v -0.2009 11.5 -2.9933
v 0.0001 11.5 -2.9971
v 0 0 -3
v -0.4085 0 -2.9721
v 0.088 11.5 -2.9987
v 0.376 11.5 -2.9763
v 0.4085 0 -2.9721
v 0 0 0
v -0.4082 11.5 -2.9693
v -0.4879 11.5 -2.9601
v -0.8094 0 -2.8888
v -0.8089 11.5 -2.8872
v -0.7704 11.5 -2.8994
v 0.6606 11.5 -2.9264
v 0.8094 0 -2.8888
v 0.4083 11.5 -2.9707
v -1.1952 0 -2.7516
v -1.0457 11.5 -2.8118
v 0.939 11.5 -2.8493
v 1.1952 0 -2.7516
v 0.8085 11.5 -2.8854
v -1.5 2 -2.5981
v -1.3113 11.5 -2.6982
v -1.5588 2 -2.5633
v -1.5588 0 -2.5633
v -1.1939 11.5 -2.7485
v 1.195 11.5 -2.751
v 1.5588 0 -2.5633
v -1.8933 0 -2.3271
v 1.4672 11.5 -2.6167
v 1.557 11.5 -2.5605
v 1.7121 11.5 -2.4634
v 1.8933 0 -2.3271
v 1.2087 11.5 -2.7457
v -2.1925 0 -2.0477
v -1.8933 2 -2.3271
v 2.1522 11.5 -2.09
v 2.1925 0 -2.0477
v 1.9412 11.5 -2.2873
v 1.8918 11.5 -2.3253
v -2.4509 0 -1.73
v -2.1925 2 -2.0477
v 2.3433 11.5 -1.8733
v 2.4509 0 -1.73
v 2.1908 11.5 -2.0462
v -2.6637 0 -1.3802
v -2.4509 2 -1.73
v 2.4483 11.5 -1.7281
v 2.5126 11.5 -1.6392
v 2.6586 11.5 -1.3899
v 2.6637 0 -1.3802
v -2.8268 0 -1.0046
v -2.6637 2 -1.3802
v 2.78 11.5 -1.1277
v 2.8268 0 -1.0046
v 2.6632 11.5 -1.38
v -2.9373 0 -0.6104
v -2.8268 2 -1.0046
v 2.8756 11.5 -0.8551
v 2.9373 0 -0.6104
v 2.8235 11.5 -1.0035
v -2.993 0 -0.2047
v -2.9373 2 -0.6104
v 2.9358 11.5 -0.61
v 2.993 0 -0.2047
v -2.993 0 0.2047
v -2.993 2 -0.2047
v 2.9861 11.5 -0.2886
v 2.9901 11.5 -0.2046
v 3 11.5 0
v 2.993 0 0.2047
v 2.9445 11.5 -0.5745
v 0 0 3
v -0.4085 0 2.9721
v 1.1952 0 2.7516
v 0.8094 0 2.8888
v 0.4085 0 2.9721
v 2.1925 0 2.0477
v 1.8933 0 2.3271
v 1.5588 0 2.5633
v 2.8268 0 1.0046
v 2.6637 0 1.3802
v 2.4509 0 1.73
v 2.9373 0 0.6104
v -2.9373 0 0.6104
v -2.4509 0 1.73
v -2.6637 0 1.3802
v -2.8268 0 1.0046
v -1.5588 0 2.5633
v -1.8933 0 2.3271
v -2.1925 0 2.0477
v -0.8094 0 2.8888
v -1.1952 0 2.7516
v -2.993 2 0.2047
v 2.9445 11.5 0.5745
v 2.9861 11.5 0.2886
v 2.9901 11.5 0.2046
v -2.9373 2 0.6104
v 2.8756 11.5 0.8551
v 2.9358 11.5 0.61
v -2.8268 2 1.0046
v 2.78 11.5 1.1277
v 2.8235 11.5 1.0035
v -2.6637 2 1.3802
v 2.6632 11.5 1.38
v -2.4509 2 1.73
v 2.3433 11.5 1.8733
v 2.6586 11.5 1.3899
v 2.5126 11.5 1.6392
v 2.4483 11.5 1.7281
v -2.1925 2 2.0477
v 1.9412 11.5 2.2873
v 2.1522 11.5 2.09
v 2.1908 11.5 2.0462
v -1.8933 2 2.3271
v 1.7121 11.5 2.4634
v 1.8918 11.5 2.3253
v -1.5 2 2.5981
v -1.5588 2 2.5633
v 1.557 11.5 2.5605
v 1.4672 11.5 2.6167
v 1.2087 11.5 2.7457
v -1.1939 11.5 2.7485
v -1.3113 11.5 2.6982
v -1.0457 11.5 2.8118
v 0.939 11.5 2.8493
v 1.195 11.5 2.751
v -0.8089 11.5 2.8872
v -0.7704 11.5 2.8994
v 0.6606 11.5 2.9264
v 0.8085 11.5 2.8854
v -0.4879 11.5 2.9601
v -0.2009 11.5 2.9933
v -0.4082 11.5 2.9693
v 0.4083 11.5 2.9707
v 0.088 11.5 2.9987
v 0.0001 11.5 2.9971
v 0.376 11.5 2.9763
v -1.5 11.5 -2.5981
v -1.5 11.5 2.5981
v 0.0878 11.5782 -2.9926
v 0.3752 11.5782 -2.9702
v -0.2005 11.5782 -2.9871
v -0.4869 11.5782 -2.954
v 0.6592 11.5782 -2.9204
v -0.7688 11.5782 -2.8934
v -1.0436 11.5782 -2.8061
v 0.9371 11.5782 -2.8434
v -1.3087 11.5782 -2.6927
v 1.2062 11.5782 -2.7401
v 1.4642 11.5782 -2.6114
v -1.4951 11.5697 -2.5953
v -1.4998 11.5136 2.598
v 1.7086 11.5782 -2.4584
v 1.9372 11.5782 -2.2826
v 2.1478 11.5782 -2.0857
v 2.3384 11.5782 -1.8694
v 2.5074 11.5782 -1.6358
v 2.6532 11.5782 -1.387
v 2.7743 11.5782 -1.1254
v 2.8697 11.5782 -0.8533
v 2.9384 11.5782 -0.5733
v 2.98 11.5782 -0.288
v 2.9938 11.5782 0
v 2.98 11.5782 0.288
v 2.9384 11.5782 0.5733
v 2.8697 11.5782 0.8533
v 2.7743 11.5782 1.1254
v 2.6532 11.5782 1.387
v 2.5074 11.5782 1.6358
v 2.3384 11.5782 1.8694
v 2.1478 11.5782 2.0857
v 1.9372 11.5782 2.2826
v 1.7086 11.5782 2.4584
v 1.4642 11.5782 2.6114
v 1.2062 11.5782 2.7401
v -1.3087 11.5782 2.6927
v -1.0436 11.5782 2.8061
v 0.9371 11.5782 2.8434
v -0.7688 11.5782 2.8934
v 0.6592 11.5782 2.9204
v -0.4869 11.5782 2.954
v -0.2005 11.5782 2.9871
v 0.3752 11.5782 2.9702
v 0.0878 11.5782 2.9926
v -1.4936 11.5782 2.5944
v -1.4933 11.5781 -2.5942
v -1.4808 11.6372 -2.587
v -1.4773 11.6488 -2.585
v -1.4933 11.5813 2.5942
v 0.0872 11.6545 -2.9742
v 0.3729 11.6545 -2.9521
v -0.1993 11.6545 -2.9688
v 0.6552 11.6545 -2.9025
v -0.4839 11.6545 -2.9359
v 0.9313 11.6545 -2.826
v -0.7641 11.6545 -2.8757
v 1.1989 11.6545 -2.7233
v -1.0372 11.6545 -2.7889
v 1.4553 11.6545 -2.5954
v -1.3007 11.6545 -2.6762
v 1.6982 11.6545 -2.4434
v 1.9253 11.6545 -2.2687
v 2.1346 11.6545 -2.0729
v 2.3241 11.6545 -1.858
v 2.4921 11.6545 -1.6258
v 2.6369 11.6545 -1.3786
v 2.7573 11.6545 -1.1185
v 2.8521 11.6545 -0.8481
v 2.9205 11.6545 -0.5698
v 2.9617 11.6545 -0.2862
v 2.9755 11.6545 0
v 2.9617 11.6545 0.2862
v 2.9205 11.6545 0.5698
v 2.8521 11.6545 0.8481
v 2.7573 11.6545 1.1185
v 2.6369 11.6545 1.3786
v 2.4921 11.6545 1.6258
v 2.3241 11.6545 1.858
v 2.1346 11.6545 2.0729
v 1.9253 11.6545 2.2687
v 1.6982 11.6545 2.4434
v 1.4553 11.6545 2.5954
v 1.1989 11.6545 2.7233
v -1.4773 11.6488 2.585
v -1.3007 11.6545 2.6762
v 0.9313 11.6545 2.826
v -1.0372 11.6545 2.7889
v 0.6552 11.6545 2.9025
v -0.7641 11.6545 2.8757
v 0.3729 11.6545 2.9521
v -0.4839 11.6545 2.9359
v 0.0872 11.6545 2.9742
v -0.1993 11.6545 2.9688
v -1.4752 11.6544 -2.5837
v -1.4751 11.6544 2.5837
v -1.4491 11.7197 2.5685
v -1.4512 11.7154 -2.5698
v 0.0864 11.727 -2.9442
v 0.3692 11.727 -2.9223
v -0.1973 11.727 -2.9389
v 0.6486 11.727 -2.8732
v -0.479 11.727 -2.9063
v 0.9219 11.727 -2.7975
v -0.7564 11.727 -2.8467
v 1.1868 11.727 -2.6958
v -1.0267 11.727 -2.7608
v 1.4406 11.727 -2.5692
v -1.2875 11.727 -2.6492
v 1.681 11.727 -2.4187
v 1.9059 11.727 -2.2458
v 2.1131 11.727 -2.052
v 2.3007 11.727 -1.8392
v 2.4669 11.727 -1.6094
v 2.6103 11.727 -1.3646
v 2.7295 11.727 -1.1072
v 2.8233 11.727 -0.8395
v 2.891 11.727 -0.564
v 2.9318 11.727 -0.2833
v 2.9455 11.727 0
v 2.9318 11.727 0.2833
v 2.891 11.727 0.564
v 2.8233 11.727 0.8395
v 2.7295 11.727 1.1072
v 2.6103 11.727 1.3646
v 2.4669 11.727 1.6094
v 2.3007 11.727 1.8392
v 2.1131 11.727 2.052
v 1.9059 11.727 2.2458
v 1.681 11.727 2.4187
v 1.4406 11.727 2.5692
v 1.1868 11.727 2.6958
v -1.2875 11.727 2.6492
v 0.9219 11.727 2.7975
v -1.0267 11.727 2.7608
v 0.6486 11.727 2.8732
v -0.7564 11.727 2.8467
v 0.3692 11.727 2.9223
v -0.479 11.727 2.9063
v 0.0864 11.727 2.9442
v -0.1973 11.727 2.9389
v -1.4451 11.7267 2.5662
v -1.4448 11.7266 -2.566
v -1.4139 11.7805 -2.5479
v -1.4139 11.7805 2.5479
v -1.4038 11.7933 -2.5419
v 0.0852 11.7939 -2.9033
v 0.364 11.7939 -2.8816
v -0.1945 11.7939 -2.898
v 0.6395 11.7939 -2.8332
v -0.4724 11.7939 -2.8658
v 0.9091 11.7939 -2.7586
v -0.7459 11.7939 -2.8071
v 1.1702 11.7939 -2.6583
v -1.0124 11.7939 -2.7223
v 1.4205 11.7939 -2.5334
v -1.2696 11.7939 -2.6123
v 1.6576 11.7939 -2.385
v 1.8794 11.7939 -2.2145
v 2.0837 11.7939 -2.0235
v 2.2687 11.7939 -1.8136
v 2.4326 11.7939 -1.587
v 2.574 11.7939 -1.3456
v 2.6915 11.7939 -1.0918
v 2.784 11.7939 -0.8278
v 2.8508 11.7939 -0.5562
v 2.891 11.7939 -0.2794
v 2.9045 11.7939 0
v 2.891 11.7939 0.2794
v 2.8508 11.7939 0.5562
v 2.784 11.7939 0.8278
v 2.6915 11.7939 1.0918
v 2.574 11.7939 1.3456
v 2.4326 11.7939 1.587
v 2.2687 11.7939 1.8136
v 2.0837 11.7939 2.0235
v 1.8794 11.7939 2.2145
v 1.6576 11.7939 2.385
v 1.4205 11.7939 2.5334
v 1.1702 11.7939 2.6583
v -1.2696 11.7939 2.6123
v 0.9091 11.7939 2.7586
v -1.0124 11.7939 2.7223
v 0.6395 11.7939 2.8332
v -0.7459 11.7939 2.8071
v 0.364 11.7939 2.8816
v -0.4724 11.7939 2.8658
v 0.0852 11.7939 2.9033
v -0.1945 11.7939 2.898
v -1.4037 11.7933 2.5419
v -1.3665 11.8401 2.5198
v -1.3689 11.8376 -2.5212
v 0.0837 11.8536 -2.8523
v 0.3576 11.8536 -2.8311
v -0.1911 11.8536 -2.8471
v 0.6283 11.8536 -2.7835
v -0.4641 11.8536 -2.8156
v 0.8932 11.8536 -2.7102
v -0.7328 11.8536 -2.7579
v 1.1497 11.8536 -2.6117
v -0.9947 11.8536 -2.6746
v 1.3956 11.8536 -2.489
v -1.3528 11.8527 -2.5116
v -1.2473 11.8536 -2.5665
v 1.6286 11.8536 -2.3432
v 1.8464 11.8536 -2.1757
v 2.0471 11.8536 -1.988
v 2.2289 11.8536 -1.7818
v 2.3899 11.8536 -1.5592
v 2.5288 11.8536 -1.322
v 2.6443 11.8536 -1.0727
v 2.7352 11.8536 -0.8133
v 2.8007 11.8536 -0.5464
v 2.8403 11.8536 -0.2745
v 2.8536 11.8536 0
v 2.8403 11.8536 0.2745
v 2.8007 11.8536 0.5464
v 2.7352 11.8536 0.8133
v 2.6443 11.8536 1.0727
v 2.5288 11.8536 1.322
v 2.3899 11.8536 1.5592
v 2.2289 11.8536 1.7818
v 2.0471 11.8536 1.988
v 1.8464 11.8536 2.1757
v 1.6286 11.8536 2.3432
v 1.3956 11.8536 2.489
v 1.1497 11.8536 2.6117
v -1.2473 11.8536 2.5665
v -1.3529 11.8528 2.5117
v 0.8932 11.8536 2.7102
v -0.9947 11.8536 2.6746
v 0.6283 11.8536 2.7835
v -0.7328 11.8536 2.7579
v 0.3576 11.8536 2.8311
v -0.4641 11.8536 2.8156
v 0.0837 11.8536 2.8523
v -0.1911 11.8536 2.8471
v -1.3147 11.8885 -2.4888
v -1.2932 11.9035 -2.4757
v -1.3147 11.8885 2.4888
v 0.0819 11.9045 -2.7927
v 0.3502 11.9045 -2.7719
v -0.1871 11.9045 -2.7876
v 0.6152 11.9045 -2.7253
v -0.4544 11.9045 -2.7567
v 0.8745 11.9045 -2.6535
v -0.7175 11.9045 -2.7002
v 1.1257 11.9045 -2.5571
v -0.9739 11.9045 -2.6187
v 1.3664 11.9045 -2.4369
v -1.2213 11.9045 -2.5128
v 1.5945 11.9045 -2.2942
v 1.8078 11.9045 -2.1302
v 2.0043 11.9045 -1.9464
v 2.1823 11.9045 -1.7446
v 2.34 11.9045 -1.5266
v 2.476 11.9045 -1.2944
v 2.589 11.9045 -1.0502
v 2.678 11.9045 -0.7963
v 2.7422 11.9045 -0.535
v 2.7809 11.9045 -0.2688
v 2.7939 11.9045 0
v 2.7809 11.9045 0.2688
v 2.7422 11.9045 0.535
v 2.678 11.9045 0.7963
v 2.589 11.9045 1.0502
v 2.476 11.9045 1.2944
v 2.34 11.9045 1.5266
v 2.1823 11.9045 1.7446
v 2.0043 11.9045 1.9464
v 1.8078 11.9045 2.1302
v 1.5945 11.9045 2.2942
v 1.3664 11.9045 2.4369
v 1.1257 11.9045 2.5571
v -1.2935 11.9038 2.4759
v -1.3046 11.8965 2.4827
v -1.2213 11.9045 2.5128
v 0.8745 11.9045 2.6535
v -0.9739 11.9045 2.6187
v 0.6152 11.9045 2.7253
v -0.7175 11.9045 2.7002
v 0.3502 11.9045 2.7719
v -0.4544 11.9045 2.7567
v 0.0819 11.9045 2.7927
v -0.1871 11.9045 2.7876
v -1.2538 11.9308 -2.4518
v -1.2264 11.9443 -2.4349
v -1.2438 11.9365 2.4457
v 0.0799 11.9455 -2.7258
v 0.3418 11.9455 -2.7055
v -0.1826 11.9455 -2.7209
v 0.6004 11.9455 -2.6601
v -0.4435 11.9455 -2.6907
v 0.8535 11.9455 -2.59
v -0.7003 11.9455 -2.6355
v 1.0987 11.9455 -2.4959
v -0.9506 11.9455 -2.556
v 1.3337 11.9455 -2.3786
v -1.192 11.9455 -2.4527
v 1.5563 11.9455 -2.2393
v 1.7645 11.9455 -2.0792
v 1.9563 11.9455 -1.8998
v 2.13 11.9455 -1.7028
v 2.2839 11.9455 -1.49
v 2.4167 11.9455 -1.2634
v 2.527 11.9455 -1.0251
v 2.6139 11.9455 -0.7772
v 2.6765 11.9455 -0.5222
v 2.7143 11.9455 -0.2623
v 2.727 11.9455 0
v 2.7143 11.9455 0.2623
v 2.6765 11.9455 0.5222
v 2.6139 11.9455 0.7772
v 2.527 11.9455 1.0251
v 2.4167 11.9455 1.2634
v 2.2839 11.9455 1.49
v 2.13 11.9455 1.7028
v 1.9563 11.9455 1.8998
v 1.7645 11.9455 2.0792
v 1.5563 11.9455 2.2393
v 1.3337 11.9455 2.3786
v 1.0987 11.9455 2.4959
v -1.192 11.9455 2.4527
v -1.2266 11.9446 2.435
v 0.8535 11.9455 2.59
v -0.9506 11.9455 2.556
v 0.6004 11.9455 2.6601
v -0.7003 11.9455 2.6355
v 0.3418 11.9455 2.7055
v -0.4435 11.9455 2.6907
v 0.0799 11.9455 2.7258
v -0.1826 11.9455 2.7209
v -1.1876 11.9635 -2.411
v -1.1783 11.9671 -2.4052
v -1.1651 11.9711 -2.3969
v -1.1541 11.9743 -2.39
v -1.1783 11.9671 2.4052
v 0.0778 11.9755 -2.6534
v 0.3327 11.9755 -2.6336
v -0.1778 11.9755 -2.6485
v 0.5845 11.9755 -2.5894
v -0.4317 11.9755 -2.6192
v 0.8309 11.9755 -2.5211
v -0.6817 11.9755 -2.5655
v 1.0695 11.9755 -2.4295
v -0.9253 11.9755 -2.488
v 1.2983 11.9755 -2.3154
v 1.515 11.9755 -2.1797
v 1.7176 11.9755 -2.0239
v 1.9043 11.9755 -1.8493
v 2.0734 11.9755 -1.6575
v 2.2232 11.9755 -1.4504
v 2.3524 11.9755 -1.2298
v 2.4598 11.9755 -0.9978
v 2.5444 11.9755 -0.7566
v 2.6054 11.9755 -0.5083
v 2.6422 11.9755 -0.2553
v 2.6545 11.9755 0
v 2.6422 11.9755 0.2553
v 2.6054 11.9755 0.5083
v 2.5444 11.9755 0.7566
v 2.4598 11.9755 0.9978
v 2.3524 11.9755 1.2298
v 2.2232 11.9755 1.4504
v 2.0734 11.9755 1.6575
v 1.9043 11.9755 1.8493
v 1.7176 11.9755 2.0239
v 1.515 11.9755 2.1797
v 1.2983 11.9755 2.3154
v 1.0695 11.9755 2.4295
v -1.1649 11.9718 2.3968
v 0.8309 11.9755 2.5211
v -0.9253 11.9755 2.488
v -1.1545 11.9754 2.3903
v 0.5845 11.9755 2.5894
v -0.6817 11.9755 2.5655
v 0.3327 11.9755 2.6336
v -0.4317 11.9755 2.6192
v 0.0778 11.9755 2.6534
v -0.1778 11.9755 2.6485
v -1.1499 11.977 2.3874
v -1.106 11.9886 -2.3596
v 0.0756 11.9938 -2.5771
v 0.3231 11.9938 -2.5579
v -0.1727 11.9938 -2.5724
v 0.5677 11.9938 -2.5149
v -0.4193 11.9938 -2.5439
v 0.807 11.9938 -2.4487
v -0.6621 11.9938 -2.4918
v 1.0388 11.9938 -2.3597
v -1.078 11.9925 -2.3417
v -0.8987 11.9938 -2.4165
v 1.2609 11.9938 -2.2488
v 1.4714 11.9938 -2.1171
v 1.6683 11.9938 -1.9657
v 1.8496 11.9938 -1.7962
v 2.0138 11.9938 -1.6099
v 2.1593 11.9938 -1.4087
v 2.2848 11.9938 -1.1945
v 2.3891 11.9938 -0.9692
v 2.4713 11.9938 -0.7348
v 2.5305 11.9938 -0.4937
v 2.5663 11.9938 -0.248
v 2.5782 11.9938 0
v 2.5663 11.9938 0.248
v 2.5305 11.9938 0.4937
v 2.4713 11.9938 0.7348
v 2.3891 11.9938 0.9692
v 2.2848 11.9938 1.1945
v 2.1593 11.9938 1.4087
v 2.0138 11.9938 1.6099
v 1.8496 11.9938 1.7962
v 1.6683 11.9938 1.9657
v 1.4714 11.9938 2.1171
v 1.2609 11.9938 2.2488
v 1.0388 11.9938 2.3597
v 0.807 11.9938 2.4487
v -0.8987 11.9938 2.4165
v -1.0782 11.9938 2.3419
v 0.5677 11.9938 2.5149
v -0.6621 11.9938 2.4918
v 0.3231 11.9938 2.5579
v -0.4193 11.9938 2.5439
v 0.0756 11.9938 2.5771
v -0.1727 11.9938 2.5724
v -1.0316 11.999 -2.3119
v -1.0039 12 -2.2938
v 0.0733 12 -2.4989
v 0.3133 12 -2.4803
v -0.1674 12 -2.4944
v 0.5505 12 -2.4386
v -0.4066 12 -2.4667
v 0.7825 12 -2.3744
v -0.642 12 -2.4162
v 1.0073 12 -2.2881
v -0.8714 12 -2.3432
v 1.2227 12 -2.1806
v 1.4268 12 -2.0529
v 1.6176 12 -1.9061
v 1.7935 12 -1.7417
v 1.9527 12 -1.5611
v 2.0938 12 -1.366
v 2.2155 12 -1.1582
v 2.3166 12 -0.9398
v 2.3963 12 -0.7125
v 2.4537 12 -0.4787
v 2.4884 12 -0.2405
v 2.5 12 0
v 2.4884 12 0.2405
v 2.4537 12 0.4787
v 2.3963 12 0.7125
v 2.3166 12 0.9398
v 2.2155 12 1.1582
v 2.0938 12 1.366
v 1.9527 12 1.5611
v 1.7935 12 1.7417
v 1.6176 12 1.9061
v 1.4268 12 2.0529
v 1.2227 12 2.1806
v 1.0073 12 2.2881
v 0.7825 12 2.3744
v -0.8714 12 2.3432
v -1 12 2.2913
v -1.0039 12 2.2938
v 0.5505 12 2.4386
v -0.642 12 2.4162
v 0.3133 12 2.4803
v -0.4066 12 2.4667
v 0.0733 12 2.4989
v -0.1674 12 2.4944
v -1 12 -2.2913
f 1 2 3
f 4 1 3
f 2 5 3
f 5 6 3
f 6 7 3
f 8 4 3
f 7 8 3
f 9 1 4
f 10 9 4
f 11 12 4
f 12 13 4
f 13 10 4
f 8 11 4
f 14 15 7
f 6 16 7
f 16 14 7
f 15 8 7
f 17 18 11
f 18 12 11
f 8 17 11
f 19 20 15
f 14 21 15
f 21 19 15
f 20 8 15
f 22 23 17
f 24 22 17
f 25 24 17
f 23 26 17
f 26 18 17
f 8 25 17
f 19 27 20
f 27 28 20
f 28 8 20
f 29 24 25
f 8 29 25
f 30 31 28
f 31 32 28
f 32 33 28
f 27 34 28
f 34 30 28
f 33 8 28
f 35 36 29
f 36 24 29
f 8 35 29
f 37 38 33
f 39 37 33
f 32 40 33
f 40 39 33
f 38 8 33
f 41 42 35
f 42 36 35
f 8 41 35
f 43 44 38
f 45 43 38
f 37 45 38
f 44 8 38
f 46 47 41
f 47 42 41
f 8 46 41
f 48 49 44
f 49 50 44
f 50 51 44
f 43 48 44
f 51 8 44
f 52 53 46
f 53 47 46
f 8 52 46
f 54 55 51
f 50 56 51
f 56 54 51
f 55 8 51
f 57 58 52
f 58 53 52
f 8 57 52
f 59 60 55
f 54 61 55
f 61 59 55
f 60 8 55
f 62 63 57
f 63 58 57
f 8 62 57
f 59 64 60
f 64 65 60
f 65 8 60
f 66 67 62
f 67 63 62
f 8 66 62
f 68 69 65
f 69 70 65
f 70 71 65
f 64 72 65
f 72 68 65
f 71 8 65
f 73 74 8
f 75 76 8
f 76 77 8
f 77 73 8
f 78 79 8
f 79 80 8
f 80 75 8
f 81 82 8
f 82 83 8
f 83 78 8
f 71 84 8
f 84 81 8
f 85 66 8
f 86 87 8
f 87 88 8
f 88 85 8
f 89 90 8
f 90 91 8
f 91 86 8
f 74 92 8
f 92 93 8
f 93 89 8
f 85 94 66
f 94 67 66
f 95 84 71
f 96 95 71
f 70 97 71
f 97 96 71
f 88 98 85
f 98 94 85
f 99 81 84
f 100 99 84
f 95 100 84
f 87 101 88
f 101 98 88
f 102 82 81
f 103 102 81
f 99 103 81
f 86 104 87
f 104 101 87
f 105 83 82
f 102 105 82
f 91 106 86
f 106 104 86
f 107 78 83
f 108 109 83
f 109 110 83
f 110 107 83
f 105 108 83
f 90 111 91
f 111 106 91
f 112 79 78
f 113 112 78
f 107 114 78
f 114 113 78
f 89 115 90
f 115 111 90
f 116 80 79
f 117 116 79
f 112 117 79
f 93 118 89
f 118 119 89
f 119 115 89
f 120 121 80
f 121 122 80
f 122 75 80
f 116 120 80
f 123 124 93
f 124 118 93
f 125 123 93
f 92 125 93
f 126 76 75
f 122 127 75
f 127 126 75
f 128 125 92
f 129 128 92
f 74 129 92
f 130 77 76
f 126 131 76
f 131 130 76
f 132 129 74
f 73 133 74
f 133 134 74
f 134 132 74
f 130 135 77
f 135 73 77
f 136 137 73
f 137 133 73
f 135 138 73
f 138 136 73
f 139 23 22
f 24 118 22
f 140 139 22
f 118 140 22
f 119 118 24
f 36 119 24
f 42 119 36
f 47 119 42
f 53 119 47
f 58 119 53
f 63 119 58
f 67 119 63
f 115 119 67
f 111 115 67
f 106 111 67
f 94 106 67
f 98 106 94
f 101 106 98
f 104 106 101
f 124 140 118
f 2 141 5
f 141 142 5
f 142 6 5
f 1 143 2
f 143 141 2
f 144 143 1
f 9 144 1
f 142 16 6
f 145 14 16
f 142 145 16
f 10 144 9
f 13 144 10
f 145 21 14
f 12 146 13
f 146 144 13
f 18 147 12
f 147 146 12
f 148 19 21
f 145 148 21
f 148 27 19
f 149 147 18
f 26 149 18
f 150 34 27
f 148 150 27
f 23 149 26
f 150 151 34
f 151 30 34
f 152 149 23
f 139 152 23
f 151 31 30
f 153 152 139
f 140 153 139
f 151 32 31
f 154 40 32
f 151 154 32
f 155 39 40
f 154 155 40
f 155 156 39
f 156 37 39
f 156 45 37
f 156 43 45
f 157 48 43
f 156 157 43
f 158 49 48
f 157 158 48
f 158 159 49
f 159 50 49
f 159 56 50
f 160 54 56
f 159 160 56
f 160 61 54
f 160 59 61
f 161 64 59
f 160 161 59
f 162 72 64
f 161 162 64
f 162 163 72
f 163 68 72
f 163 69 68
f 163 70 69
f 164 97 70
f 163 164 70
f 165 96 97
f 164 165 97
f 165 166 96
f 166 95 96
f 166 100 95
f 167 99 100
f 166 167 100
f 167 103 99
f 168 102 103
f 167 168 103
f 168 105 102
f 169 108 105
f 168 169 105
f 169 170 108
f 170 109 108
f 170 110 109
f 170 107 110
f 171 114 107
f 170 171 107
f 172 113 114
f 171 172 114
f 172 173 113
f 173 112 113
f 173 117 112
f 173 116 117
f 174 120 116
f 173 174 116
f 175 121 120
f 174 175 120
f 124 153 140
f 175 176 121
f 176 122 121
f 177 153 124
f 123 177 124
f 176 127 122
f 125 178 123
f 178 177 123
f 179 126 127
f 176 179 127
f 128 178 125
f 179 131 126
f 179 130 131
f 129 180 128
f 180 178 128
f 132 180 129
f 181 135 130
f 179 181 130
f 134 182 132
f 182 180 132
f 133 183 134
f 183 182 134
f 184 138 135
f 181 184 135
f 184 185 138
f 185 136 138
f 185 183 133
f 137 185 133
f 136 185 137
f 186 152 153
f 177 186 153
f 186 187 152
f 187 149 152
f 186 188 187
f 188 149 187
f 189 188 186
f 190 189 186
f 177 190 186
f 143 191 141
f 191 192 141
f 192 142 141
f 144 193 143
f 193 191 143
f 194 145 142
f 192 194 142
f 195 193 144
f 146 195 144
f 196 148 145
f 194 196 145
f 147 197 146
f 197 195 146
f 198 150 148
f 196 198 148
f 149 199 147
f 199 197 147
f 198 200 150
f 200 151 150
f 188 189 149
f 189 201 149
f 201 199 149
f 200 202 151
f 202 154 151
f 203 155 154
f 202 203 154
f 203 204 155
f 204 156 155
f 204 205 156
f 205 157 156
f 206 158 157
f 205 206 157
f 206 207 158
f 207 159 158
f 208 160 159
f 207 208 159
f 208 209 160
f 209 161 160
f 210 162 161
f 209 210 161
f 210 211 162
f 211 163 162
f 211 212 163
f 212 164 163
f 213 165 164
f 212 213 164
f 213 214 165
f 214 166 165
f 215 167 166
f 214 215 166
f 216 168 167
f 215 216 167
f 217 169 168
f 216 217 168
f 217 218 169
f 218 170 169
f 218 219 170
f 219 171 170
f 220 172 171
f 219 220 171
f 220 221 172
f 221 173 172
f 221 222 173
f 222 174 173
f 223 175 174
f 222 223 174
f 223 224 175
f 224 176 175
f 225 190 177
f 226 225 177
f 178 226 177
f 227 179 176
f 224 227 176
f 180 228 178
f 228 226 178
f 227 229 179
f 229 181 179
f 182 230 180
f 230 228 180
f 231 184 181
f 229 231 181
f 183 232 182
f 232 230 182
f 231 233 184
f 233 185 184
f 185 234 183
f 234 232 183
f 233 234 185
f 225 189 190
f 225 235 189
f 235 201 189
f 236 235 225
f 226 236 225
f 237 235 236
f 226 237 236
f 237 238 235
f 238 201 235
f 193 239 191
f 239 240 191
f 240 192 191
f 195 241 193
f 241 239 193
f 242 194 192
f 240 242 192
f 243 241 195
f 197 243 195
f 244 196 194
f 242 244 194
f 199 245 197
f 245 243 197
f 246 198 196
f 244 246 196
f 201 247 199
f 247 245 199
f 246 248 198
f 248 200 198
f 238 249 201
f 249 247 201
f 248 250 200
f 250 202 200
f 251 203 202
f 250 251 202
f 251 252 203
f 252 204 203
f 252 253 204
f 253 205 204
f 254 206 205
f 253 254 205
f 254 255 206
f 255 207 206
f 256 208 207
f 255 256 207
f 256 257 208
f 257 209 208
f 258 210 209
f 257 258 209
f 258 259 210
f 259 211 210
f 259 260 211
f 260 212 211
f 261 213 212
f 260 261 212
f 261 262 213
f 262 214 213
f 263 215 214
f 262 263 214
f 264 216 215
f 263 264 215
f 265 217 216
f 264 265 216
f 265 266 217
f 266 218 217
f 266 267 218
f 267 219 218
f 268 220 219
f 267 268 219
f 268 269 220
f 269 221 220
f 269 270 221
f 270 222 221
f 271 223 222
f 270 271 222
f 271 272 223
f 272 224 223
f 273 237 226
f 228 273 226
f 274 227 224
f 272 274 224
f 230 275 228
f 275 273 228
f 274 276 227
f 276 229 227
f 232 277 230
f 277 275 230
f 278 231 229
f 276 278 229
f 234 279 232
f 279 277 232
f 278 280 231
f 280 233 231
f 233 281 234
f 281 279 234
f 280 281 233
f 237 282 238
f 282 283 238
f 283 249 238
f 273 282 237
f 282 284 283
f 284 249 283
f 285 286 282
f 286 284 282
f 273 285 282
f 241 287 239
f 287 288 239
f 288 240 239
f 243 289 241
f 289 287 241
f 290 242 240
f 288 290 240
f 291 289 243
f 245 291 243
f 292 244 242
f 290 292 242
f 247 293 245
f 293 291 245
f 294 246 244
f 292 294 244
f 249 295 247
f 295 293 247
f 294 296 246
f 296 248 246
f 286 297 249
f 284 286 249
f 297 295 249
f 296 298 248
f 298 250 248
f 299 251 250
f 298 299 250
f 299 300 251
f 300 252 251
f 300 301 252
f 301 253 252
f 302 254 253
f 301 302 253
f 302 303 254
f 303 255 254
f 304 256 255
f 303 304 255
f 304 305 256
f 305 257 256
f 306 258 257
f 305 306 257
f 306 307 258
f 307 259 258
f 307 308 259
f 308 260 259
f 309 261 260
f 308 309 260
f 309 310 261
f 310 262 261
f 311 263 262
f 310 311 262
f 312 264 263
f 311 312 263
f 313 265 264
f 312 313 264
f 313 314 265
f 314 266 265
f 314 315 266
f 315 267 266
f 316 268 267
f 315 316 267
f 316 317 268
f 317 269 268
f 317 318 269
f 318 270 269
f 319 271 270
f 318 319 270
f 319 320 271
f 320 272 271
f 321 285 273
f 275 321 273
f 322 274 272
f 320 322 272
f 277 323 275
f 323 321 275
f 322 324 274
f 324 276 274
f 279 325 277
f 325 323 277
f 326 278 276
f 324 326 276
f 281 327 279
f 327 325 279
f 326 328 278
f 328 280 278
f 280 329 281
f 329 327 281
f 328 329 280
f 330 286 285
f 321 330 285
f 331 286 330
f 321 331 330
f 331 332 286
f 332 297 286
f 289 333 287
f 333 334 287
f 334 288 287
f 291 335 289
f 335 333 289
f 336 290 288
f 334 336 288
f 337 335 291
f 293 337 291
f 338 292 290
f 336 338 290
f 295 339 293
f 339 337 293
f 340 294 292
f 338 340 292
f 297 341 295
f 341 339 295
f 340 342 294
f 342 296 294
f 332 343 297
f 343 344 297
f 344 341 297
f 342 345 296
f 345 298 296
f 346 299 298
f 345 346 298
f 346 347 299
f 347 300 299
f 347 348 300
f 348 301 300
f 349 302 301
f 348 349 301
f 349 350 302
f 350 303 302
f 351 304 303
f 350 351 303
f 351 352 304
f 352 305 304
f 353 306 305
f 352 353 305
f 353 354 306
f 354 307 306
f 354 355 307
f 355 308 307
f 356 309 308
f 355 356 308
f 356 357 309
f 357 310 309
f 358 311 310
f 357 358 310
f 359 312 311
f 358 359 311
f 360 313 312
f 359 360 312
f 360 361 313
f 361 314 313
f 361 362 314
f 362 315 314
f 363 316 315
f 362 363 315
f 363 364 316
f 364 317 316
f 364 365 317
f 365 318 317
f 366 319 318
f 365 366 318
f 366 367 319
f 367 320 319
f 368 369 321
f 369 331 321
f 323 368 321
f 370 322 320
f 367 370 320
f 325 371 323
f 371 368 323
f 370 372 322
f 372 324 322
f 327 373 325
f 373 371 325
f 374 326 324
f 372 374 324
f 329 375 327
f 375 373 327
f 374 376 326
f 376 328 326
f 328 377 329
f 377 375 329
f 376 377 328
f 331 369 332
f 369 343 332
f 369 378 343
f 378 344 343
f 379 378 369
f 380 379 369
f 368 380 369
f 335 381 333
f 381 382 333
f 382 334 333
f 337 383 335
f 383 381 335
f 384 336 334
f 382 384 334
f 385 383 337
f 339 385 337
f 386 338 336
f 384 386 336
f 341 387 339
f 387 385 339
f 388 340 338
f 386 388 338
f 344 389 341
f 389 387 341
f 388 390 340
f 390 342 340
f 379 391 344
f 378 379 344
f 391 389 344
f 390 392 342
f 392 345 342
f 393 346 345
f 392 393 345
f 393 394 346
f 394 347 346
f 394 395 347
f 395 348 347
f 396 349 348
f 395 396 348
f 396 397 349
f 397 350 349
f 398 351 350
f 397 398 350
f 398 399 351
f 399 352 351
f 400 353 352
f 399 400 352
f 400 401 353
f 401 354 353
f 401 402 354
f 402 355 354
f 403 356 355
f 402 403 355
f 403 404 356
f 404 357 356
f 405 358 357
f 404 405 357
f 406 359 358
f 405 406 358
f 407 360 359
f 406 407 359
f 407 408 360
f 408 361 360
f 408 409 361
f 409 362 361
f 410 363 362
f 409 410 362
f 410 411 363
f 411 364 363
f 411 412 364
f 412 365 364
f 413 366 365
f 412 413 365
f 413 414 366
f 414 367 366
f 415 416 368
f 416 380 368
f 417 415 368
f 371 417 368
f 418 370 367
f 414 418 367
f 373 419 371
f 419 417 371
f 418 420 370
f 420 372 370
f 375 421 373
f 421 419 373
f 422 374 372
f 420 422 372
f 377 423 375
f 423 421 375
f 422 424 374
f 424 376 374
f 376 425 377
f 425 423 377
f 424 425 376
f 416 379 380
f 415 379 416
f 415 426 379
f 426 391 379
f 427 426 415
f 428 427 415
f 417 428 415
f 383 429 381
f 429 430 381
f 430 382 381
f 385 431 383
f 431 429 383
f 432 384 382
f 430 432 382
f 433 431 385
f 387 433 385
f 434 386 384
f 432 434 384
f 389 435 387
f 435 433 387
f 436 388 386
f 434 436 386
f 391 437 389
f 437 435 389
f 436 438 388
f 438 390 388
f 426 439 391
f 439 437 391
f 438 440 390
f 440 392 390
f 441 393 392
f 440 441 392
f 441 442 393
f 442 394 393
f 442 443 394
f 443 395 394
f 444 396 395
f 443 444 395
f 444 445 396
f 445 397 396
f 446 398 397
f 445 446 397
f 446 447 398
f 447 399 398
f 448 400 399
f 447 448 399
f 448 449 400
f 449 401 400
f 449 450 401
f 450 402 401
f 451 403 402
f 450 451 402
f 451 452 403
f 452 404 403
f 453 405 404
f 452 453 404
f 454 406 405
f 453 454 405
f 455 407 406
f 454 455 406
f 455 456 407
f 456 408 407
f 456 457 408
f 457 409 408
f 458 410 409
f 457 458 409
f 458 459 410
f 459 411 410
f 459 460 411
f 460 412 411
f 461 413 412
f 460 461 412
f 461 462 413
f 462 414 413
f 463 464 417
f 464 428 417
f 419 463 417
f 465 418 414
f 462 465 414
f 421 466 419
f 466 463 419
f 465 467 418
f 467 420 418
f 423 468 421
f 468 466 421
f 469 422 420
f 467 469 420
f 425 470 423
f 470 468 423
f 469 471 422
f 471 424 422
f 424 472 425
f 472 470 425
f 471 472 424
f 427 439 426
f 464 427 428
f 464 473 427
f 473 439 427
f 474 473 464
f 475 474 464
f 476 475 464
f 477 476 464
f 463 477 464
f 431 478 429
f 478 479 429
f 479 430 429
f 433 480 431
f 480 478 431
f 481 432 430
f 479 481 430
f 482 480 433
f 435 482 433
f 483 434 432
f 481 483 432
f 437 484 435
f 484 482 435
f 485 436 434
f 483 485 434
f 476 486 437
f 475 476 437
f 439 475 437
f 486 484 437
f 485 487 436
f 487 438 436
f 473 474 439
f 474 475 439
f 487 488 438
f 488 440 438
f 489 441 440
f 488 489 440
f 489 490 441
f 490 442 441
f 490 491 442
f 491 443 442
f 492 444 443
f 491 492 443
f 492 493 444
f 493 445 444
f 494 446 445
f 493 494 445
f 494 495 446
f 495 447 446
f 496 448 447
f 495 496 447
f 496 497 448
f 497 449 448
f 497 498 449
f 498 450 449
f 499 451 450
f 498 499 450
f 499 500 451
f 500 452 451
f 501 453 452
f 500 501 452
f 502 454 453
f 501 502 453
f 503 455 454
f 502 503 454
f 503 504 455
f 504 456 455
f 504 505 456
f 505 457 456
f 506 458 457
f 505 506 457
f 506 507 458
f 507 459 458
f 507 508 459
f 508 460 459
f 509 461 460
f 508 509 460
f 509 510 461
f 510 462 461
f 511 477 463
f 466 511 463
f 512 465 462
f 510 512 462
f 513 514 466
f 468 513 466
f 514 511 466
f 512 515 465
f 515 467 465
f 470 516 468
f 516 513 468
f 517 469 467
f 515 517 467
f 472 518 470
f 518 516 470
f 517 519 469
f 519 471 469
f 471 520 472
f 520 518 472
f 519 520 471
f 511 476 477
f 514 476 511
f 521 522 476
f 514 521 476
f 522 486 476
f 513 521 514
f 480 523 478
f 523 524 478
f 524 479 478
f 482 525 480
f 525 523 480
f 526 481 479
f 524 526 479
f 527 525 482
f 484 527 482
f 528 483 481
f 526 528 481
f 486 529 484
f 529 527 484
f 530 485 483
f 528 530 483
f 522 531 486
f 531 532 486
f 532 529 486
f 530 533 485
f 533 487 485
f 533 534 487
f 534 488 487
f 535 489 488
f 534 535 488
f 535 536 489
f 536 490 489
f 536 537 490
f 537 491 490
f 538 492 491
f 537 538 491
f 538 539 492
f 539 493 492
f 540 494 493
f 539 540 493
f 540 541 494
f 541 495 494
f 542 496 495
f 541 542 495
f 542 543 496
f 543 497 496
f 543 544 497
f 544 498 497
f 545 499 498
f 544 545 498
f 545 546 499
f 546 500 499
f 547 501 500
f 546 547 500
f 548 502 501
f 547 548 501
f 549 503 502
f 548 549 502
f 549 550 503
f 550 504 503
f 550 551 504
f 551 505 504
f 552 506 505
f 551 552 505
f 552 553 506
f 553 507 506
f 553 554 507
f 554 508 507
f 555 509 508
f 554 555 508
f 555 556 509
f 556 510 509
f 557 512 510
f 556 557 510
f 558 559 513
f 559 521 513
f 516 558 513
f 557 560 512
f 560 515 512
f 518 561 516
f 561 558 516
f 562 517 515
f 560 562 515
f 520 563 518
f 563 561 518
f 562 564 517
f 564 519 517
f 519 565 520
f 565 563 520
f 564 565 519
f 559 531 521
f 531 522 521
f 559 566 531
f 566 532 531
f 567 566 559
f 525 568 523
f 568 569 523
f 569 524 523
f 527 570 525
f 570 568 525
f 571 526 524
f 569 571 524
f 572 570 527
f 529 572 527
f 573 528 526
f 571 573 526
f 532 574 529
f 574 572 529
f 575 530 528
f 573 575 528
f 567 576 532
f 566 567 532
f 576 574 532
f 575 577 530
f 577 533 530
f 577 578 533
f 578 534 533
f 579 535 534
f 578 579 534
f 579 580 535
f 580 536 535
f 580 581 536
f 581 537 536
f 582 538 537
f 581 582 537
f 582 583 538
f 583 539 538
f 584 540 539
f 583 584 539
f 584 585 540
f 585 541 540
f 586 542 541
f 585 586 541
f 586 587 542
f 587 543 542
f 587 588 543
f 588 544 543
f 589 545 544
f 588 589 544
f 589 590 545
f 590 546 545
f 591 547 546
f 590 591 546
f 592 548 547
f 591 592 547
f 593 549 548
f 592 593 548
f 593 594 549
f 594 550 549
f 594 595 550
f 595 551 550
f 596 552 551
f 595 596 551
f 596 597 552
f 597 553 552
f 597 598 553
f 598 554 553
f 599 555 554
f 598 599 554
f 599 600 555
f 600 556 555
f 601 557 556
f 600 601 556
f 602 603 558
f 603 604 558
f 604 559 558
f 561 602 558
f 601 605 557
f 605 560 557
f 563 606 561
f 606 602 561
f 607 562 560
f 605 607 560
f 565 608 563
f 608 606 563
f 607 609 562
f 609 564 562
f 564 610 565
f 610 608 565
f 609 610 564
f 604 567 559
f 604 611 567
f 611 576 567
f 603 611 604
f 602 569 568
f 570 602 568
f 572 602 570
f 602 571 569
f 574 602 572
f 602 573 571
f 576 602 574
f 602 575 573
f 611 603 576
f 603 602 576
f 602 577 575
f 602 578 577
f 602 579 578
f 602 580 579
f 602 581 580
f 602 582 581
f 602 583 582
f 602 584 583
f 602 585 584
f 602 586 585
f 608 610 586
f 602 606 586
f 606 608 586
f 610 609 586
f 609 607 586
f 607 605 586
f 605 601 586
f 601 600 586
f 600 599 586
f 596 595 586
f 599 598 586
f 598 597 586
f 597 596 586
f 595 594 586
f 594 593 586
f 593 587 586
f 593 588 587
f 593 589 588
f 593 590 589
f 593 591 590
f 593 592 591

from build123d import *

# Parameters (mm, degrees)
SKETCH1_R           = 3
BOSS_EXTRUDE1_DEPTH = 12
SKETCH4_W           = 3.217642032
SKETCH4_H           = 5.196152422
CUT_EXTRUDE1_DEPTH  = 10
FILLET1_R           = 0.5


with BuildPart() as part:
    # Sketch1 → Boss-Extrude1 (new body)
    with BuildSketch(Plane(origin=(0, 0, 0), x_dir=(1, 0, 0), z_dir=(0, 1, 0))):
        Circle(SKETCH1_R)
    extrude(amount=BOSS_EXTRUDE1_DEPTH)

    # Sketch4 → Cut-Extrude1 (cut)
    with BuildSketch(Plane(origin=(0, 12, 0), x_dir=(1, 0, 0), z_dir=(0, 1, 0))):
        with Locations((-3.108821016, 0)):
            Rectangle(SKETCH4_W, SKETCH4_H)
    extrude(amount=-CUT_EXTRUDE1_DEPTH, mode=Mode.SUBTRACT)

    # Fillet1
    fillet1_edges = [part.edges().sort_by_distance(p)[0] for p in [
        (1.5, 12, 2.598076211),
        (-1.5, 12, 0),
    ]]
    fillet(fillet1_edges, radius=FILLET1_R)


solid = part.part
